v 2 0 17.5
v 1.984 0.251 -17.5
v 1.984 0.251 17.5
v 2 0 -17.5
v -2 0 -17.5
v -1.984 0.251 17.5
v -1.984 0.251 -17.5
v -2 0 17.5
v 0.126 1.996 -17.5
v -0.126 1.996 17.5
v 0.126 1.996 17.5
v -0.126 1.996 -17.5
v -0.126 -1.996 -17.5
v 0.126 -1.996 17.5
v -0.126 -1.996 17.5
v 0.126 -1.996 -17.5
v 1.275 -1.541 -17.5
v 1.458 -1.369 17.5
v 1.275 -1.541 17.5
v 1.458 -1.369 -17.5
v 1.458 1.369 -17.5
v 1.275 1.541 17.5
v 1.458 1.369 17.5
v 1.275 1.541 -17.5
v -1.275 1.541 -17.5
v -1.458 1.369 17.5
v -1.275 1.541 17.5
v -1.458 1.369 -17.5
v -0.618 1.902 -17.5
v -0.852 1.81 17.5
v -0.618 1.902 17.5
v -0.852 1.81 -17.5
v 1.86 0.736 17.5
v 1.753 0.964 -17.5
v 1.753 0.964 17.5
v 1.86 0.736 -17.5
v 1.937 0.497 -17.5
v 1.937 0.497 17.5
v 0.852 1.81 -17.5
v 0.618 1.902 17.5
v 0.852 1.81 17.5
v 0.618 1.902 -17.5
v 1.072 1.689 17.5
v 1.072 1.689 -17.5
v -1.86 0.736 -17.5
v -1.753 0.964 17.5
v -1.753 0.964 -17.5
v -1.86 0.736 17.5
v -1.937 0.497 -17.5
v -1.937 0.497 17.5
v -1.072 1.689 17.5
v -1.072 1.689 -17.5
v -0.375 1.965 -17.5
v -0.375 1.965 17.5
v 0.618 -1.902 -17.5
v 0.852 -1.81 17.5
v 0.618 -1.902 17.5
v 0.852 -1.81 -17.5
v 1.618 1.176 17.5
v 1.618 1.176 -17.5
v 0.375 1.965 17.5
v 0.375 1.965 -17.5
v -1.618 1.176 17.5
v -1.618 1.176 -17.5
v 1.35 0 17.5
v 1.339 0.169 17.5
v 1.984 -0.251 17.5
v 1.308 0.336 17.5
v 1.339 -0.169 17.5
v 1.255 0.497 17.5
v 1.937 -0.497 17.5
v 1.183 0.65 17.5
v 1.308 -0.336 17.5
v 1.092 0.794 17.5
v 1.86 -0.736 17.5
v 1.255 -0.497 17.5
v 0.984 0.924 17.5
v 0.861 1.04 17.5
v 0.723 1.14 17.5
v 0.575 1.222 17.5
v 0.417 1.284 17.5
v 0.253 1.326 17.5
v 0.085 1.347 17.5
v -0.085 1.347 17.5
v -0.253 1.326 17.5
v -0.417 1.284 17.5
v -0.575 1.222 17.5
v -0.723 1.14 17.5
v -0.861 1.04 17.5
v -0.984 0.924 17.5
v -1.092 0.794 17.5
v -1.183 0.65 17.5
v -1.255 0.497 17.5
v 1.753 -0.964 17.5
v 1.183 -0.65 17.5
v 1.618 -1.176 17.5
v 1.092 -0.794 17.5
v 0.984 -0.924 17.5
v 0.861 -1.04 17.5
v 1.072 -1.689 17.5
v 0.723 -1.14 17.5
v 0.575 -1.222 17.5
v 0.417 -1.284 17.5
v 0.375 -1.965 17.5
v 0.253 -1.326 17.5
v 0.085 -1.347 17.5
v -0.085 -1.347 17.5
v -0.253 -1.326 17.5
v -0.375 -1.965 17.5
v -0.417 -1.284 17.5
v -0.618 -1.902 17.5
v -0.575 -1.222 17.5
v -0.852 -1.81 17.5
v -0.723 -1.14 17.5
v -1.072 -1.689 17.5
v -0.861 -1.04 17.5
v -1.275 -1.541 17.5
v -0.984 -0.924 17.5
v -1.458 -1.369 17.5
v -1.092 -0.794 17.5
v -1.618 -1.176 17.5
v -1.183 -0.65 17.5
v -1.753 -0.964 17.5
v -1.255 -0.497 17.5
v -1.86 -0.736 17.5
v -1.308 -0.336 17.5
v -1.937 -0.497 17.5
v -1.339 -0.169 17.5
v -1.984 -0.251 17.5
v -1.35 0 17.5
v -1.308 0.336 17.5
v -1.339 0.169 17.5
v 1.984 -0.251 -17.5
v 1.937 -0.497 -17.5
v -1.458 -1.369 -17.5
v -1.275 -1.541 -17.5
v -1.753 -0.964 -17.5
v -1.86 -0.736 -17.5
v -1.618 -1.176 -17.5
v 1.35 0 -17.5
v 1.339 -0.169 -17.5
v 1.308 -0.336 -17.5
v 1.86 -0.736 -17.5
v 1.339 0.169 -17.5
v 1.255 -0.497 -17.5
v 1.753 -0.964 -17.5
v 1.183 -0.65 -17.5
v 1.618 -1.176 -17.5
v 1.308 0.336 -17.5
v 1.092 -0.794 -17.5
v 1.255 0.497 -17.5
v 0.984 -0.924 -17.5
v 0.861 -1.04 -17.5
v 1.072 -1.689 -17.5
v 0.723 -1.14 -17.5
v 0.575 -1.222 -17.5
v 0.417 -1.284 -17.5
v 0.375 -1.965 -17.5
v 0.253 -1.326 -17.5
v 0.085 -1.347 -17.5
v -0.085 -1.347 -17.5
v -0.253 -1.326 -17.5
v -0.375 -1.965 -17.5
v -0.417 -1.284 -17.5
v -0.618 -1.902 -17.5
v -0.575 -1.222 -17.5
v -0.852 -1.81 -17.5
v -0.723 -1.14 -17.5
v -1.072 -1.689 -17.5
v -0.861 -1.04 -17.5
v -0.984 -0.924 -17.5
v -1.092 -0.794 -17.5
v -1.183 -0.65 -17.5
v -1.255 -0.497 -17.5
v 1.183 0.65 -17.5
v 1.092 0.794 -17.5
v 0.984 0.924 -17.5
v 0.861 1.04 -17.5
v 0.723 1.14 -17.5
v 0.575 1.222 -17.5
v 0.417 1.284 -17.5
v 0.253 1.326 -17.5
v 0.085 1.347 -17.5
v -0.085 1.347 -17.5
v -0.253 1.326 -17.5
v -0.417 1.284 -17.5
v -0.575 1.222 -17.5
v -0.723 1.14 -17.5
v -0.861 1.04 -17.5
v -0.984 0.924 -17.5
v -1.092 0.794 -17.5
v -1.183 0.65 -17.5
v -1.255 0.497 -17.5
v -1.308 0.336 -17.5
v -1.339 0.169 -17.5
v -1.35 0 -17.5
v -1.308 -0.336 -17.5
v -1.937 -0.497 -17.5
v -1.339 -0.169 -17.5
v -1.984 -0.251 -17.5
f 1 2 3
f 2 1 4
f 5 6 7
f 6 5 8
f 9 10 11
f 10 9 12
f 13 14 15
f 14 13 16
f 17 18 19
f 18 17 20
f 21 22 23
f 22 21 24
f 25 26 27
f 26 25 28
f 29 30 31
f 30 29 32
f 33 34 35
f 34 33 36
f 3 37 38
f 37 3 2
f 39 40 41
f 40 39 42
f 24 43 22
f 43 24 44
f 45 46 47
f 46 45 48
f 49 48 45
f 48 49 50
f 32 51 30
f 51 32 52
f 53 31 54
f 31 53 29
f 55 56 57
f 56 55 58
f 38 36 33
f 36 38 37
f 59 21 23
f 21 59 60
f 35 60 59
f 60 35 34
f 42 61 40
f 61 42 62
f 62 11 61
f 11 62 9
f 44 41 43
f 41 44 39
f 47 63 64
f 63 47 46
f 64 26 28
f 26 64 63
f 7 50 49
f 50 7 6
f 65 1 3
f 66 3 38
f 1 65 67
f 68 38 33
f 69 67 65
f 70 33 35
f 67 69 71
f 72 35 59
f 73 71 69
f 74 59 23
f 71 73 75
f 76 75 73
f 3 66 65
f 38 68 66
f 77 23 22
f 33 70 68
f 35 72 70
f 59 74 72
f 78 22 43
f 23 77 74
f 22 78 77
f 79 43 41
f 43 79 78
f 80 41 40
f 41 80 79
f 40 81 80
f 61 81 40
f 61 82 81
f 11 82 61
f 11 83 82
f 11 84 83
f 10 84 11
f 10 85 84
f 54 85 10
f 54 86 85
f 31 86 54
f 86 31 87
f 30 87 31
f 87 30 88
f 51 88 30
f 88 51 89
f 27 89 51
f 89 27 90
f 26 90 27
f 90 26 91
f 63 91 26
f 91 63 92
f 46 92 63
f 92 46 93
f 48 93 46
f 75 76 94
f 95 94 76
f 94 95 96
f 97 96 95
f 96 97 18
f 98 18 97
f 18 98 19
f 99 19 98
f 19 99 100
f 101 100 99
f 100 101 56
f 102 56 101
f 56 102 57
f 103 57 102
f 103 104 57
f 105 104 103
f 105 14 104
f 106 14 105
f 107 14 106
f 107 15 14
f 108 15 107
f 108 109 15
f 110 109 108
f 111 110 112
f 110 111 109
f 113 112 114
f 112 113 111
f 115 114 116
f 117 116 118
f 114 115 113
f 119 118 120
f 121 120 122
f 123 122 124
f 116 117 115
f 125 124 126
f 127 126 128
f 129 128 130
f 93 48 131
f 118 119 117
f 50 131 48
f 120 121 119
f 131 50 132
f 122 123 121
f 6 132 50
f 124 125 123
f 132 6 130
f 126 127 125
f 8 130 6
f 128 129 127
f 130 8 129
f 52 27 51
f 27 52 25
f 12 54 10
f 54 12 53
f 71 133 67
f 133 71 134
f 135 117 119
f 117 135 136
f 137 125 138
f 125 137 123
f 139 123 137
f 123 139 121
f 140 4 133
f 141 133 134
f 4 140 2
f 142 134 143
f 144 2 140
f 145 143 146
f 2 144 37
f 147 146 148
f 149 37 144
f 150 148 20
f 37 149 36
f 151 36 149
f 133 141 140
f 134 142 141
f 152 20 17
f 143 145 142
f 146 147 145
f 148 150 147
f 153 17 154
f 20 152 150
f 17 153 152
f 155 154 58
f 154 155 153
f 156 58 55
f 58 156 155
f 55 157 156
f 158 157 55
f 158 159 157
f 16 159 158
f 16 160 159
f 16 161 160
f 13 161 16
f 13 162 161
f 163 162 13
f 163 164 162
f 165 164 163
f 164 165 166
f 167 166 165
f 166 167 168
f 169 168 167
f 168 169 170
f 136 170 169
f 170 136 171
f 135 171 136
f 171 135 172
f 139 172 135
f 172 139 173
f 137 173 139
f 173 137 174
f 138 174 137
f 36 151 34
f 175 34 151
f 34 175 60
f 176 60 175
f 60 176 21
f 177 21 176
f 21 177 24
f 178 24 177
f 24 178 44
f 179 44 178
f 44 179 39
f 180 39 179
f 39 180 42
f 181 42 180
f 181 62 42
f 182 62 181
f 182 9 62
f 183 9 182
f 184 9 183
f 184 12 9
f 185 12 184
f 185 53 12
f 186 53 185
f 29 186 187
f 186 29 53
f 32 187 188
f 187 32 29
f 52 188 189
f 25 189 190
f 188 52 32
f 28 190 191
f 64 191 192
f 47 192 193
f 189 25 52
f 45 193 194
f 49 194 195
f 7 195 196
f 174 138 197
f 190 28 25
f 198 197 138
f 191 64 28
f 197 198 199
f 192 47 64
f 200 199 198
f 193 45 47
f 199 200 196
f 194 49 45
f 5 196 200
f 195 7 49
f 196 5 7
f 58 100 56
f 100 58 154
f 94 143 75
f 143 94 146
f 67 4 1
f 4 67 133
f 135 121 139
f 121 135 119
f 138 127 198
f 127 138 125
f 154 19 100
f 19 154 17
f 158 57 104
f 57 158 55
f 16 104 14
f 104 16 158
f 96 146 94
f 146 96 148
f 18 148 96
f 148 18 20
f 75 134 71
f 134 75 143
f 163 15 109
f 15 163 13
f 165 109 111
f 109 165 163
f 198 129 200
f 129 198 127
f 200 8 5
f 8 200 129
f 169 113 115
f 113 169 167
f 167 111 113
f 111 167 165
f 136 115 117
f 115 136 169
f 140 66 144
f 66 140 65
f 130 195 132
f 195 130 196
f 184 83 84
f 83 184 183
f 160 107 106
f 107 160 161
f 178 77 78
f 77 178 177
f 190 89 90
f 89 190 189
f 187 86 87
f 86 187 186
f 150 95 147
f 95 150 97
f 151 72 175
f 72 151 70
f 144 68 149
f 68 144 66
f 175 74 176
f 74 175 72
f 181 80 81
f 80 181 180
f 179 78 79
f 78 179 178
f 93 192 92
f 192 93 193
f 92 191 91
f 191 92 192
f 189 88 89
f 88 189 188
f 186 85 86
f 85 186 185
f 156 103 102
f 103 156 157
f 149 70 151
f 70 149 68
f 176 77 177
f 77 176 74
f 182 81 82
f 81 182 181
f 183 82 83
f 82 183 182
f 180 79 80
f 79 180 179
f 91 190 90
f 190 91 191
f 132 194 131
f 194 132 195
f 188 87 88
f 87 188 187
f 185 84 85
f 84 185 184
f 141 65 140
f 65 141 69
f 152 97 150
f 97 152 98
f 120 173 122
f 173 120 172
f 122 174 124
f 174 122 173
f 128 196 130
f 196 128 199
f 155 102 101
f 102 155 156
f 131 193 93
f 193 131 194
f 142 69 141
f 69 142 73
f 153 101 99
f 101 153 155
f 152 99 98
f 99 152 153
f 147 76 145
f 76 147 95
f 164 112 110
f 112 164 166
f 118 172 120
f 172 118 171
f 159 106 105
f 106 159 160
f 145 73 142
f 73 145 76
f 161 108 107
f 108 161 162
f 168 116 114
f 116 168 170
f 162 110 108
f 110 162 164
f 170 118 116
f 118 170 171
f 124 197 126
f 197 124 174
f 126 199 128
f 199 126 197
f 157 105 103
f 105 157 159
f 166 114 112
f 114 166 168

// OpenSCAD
$fn = 50;


difference() {
	union() {
		translate(v = [0, 0, -17.5000000000]) {
			cylinder(h = 35, r = 2.0000000000);
		}
	}
	union() {
		translate(v = [0, 0, -100.0000000000]) {
			cylinder(h = 200, r = 1.3500000000);
		}
	}
}
